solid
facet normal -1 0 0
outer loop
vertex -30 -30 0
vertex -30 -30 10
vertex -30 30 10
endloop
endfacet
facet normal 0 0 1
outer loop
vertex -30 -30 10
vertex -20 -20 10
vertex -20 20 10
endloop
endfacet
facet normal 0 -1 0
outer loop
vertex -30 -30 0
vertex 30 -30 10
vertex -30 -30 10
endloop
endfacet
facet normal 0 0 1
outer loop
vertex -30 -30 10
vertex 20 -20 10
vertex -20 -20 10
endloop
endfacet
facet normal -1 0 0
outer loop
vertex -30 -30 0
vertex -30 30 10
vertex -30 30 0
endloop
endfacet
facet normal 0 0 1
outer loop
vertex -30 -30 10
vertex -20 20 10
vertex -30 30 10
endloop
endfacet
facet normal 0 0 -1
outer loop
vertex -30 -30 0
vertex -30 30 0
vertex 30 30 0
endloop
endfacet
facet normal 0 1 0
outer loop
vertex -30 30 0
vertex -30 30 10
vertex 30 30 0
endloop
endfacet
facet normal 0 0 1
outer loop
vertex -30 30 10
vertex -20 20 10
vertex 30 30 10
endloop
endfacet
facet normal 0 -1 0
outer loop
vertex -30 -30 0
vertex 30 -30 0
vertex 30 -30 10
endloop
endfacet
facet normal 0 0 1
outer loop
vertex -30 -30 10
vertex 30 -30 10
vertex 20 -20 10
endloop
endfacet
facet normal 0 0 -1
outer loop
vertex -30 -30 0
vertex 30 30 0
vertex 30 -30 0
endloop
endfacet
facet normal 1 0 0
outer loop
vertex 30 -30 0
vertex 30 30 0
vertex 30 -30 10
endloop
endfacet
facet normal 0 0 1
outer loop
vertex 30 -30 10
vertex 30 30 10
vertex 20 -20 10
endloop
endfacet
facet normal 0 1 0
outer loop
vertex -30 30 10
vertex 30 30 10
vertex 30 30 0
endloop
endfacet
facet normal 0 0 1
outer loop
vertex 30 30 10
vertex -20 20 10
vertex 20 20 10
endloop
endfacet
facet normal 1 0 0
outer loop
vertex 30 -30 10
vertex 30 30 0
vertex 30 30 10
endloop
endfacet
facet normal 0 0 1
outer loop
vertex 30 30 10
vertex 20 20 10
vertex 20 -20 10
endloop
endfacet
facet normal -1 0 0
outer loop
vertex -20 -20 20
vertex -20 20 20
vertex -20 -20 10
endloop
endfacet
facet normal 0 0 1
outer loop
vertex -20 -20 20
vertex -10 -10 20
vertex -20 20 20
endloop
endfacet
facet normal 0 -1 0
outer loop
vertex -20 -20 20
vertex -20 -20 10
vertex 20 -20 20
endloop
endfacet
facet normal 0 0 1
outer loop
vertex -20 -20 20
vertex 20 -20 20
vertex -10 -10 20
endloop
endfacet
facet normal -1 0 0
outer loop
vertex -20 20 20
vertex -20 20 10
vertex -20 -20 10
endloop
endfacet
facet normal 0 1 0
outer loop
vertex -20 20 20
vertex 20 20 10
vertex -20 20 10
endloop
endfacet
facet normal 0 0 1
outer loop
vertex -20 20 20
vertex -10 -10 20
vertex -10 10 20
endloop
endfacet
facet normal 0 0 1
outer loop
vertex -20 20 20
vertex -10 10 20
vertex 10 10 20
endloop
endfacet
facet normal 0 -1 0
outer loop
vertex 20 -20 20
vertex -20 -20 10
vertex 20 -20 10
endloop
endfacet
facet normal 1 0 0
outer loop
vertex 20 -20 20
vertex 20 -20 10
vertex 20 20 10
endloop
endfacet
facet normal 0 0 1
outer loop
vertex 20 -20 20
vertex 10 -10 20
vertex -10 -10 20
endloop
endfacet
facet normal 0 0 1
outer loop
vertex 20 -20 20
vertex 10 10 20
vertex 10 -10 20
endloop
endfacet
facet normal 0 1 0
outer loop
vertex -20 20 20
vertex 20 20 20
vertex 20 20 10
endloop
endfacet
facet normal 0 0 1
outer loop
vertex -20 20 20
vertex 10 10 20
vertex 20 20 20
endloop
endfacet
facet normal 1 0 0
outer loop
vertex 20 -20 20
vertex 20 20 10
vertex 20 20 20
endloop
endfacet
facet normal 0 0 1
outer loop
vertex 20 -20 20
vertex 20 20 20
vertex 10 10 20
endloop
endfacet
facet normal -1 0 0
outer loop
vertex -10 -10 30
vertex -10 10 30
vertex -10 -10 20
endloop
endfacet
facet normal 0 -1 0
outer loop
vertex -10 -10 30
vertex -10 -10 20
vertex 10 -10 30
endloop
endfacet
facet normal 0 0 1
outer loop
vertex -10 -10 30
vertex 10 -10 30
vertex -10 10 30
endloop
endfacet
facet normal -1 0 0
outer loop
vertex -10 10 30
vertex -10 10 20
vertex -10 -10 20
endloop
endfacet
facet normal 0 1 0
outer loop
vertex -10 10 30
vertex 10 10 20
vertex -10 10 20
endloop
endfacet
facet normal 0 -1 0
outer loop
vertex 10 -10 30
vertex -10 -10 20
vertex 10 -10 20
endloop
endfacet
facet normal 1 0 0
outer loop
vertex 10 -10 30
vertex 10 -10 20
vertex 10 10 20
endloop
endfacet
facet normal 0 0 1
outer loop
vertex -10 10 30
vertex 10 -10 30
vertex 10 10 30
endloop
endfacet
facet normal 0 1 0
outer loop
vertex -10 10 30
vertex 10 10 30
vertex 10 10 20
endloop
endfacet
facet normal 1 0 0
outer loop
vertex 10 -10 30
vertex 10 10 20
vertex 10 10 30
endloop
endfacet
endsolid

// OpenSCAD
// 3段階のピラミッド
module step(size, z_center) {
    translate([0, 0, z_center])
        cube([size, size, 10], center = true);
}

// 底辺 60mm の段
step(60, 5);
// 中央の 40mm の段
step(40, 15);
// 上の 20mm の段
step(20, 25);
